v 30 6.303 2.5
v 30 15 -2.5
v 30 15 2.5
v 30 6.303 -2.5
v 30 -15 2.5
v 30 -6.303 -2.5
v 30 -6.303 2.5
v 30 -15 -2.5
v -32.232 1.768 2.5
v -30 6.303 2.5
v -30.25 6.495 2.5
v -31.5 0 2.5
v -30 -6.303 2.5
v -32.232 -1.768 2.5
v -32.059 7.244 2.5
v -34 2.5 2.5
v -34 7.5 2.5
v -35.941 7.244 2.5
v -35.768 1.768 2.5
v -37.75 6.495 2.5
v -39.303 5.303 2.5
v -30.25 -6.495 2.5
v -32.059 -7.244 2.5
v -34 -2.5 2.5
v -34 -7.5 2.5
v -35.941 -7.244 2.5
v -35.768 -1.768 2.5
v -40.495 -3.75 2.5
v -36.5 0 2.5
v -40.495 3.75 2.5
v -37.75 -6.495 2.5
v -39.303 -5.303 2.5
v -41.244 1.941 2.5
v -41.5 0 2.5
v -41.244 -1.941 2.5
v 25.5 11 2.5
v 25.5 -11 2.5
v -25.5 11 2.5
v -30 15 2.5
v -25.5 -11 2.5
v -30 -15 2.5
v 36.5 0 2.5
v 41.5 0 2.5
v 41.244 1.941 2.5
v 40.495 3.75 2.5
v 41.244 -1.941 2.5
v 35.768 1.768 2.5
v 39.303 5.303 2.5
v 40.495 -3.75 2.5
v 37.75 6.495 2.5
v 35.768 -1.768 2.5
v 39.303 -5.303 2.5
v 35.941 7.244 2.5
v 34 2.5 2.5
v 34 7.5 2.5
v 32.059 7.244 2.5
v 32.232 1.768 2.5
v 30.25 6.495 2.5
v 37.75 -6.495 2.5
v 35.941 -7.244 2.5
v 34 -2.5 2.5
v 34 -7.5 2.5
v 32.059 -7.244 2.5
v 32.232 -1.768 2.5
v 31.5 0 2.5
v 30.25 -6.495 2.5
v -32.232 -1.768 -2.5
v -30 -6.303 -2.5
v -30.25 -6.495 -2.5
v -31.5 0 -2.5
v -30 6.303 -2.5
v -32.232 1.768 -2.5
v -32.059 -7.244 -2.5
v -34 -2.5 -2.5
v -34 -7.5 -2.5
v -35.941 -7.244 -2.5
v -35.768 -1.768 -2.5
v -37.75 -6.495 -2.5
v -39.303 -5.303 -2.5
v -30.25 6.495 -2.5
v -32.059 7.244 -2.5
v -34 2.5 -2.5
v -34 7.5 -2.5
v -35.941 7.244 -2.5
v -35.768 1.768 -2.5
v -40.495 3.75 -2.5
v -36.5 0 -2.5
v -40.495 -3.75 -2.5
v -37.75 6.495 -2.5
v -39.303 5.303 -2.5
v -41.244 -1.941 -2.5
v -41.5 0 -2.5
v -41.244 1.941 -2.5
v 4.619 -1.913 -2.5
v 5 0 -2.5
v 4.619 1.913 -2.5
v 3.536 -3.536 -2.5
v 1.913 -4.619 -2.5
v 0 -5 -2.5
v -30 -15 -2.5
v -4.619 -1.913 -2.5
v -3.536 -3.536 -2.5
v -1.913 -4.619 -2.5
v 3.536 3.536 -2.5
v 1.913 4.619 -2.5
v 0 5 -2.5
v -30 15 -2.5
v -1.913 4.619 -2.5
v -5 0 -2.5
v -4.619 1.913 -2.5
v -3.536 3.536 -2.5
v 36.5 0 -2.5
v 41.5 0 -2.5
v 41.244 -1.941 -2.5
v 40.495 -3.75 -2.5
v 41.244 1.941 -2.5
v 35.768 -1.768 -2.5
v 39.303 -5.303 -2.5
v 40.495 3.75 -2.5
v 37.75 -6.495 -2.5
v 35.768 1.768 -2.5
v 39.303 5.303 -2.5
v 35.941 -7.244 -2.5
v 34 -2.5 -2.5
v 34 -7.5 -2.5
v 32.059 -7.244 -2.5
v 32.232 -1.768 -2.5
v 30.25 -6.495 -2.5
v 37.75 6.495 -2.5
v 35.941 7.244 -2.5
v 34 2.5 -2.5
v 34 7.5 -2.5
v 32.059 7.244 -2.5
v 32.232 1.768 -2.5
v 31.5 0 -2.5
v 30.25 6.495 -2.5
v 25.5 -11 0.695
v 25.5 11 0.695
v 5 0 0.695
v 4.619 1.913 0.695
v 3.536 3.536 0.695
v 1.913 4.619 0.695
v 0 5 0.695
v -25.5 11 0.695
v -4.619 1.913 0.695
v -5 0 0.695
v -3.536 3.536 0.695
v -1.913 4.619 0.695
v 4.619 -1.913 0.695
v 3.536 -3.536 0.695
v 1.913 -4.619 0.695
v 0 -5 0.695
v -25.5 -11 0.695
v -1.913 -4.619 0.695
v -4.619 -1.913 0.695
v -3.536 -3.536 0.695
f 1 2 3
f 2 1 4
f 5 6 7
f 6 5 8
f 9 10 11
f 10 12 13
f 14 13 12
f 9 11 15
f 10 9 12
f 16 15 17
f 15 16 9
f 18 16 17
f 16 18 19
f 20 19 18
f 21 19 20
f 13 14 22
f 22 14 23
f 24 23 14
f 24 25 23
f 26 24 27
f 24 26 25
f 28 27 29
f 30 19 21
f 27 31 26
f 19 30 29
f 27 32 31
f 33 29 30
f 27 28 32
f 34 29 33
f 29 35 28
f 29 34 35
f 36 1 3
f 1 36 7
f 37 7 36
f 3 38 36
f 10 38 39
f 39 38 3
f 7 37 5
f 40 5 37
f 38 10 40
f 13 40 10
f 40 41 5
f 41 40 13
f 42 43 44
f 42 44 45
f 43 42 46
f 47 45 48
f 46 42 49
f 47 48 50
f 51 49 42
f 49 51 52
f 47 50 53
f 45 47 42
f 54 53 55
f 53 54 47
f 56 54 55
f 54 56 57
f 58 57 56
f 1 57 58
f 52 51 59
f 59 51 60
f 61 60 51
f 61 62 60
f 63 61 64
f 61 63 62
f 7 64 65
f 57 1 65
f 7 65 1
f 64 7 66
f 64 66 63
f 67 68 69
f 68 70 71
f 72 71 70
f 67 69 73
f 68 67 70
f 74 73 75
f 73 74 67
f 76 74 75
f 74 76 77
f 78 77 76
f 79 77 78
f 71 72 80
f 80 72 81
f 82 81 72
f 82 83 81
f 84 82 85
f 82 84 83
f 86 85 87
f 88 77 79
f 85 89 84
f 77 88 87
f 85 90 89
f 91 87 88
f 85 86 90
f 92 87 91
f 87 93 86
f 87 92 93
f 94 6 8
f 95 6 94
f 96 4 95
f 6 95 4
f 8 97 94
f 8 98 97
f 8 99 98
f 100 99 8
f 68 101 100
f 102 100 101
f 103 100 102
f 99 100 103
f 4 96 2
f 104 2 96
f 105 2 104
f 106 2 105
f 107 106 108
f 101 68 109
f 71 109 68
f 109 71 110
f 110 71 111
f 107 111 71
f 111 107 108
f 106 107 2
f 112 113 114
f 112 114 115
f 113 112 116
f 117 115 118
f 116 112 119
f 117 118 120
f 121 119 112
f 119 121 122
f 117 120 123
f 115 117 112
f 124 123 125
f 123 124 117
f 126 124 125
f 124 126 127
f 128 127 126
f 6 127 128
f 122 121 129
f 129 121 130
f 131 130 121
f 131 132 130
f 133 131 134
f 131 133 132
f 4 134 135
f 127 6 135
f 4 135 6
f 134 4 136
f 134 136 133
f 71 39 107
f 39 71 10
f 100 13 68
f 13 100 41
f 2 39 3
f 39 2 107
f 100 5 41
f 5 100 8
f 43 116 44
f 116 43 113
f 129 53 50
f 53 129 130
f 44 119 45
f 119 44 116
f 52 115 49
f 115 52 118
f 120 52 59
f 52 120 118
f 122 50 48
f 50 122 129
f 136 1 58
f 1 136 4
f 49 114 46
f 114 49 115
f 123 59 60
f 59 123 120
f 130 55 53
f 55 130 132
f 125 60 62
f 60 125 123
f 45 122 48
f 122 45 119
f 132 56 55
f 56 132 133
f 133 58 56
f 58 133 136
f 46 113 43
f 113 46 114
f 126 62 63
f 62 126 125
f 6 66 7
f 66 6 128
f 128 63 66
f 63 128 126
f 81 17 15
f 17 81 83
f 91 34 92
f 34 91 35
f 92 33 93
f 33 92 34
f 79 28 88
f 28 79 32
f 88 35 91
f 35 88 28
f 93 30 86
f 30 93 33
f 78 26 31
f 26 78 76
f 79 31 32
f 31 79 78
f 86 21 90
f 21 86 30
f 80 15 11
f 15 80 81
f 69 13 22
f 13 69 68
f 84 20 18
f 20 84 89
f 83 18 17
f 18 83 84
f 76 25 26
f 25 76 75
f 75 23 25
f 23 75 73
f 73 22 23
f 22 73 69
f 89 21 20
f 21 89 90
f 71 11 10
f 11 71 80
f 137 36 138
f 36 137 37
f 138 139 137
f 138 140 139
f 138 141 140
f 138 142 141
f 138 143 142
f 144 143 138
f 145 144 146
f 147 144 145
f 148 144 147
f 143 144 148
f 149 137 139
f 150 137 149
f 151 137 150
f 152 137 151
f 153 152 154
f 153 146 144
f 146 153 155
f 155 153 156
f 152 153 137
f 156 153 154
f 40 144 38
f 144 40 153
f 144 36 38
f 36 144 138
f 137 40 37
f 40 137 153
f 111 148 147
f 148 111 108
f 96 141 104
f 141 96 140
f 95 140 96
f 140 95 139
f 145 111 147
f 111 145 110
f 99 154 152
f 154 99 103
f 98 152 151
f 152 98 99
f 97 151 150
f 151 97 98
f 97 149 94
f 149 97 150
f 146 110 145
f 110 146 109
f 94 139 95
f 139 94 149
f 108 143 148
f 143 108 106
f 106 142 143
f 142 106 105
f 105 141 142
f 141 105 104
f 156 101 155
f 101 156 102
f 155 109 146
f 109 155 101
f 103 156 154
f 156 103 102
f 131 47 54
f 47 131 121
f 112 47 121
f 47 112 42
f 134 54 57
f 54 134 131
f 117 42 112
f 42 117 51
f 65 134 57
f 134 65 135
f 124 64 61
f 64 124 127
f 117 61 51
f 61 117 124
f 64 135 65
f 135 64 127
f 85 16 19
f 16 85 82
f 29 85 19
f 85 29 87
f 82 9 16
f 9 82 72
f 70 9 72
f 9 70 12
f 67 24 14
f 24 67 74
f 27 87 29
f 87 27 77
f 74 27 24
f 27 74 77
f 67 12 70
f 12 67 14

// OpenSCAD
difference() {
    union(){
        cube([60,30,5],true);
        translate([60/2+4,0,0]) cylinder(5,d=15,center=true);
        mirror([1,0,0]) translate([60/2+4,0,0]) cylinder(5,d=15,center=true);
    }
    union(){
        translate([0,0,-5/2+3.2/2+3.2]) cube([51,22,3.2+0.01],true);
        cylinder(5+0.01,d=10,center=true);
        translate([60/2+4,0,0]) cylinder(5+0.01,d=5,center=true);
        mirror([1,0,0]) translate([60/2+4,0,0]) cylinder(5+0.01,d=5,center=true);        
    }
}
